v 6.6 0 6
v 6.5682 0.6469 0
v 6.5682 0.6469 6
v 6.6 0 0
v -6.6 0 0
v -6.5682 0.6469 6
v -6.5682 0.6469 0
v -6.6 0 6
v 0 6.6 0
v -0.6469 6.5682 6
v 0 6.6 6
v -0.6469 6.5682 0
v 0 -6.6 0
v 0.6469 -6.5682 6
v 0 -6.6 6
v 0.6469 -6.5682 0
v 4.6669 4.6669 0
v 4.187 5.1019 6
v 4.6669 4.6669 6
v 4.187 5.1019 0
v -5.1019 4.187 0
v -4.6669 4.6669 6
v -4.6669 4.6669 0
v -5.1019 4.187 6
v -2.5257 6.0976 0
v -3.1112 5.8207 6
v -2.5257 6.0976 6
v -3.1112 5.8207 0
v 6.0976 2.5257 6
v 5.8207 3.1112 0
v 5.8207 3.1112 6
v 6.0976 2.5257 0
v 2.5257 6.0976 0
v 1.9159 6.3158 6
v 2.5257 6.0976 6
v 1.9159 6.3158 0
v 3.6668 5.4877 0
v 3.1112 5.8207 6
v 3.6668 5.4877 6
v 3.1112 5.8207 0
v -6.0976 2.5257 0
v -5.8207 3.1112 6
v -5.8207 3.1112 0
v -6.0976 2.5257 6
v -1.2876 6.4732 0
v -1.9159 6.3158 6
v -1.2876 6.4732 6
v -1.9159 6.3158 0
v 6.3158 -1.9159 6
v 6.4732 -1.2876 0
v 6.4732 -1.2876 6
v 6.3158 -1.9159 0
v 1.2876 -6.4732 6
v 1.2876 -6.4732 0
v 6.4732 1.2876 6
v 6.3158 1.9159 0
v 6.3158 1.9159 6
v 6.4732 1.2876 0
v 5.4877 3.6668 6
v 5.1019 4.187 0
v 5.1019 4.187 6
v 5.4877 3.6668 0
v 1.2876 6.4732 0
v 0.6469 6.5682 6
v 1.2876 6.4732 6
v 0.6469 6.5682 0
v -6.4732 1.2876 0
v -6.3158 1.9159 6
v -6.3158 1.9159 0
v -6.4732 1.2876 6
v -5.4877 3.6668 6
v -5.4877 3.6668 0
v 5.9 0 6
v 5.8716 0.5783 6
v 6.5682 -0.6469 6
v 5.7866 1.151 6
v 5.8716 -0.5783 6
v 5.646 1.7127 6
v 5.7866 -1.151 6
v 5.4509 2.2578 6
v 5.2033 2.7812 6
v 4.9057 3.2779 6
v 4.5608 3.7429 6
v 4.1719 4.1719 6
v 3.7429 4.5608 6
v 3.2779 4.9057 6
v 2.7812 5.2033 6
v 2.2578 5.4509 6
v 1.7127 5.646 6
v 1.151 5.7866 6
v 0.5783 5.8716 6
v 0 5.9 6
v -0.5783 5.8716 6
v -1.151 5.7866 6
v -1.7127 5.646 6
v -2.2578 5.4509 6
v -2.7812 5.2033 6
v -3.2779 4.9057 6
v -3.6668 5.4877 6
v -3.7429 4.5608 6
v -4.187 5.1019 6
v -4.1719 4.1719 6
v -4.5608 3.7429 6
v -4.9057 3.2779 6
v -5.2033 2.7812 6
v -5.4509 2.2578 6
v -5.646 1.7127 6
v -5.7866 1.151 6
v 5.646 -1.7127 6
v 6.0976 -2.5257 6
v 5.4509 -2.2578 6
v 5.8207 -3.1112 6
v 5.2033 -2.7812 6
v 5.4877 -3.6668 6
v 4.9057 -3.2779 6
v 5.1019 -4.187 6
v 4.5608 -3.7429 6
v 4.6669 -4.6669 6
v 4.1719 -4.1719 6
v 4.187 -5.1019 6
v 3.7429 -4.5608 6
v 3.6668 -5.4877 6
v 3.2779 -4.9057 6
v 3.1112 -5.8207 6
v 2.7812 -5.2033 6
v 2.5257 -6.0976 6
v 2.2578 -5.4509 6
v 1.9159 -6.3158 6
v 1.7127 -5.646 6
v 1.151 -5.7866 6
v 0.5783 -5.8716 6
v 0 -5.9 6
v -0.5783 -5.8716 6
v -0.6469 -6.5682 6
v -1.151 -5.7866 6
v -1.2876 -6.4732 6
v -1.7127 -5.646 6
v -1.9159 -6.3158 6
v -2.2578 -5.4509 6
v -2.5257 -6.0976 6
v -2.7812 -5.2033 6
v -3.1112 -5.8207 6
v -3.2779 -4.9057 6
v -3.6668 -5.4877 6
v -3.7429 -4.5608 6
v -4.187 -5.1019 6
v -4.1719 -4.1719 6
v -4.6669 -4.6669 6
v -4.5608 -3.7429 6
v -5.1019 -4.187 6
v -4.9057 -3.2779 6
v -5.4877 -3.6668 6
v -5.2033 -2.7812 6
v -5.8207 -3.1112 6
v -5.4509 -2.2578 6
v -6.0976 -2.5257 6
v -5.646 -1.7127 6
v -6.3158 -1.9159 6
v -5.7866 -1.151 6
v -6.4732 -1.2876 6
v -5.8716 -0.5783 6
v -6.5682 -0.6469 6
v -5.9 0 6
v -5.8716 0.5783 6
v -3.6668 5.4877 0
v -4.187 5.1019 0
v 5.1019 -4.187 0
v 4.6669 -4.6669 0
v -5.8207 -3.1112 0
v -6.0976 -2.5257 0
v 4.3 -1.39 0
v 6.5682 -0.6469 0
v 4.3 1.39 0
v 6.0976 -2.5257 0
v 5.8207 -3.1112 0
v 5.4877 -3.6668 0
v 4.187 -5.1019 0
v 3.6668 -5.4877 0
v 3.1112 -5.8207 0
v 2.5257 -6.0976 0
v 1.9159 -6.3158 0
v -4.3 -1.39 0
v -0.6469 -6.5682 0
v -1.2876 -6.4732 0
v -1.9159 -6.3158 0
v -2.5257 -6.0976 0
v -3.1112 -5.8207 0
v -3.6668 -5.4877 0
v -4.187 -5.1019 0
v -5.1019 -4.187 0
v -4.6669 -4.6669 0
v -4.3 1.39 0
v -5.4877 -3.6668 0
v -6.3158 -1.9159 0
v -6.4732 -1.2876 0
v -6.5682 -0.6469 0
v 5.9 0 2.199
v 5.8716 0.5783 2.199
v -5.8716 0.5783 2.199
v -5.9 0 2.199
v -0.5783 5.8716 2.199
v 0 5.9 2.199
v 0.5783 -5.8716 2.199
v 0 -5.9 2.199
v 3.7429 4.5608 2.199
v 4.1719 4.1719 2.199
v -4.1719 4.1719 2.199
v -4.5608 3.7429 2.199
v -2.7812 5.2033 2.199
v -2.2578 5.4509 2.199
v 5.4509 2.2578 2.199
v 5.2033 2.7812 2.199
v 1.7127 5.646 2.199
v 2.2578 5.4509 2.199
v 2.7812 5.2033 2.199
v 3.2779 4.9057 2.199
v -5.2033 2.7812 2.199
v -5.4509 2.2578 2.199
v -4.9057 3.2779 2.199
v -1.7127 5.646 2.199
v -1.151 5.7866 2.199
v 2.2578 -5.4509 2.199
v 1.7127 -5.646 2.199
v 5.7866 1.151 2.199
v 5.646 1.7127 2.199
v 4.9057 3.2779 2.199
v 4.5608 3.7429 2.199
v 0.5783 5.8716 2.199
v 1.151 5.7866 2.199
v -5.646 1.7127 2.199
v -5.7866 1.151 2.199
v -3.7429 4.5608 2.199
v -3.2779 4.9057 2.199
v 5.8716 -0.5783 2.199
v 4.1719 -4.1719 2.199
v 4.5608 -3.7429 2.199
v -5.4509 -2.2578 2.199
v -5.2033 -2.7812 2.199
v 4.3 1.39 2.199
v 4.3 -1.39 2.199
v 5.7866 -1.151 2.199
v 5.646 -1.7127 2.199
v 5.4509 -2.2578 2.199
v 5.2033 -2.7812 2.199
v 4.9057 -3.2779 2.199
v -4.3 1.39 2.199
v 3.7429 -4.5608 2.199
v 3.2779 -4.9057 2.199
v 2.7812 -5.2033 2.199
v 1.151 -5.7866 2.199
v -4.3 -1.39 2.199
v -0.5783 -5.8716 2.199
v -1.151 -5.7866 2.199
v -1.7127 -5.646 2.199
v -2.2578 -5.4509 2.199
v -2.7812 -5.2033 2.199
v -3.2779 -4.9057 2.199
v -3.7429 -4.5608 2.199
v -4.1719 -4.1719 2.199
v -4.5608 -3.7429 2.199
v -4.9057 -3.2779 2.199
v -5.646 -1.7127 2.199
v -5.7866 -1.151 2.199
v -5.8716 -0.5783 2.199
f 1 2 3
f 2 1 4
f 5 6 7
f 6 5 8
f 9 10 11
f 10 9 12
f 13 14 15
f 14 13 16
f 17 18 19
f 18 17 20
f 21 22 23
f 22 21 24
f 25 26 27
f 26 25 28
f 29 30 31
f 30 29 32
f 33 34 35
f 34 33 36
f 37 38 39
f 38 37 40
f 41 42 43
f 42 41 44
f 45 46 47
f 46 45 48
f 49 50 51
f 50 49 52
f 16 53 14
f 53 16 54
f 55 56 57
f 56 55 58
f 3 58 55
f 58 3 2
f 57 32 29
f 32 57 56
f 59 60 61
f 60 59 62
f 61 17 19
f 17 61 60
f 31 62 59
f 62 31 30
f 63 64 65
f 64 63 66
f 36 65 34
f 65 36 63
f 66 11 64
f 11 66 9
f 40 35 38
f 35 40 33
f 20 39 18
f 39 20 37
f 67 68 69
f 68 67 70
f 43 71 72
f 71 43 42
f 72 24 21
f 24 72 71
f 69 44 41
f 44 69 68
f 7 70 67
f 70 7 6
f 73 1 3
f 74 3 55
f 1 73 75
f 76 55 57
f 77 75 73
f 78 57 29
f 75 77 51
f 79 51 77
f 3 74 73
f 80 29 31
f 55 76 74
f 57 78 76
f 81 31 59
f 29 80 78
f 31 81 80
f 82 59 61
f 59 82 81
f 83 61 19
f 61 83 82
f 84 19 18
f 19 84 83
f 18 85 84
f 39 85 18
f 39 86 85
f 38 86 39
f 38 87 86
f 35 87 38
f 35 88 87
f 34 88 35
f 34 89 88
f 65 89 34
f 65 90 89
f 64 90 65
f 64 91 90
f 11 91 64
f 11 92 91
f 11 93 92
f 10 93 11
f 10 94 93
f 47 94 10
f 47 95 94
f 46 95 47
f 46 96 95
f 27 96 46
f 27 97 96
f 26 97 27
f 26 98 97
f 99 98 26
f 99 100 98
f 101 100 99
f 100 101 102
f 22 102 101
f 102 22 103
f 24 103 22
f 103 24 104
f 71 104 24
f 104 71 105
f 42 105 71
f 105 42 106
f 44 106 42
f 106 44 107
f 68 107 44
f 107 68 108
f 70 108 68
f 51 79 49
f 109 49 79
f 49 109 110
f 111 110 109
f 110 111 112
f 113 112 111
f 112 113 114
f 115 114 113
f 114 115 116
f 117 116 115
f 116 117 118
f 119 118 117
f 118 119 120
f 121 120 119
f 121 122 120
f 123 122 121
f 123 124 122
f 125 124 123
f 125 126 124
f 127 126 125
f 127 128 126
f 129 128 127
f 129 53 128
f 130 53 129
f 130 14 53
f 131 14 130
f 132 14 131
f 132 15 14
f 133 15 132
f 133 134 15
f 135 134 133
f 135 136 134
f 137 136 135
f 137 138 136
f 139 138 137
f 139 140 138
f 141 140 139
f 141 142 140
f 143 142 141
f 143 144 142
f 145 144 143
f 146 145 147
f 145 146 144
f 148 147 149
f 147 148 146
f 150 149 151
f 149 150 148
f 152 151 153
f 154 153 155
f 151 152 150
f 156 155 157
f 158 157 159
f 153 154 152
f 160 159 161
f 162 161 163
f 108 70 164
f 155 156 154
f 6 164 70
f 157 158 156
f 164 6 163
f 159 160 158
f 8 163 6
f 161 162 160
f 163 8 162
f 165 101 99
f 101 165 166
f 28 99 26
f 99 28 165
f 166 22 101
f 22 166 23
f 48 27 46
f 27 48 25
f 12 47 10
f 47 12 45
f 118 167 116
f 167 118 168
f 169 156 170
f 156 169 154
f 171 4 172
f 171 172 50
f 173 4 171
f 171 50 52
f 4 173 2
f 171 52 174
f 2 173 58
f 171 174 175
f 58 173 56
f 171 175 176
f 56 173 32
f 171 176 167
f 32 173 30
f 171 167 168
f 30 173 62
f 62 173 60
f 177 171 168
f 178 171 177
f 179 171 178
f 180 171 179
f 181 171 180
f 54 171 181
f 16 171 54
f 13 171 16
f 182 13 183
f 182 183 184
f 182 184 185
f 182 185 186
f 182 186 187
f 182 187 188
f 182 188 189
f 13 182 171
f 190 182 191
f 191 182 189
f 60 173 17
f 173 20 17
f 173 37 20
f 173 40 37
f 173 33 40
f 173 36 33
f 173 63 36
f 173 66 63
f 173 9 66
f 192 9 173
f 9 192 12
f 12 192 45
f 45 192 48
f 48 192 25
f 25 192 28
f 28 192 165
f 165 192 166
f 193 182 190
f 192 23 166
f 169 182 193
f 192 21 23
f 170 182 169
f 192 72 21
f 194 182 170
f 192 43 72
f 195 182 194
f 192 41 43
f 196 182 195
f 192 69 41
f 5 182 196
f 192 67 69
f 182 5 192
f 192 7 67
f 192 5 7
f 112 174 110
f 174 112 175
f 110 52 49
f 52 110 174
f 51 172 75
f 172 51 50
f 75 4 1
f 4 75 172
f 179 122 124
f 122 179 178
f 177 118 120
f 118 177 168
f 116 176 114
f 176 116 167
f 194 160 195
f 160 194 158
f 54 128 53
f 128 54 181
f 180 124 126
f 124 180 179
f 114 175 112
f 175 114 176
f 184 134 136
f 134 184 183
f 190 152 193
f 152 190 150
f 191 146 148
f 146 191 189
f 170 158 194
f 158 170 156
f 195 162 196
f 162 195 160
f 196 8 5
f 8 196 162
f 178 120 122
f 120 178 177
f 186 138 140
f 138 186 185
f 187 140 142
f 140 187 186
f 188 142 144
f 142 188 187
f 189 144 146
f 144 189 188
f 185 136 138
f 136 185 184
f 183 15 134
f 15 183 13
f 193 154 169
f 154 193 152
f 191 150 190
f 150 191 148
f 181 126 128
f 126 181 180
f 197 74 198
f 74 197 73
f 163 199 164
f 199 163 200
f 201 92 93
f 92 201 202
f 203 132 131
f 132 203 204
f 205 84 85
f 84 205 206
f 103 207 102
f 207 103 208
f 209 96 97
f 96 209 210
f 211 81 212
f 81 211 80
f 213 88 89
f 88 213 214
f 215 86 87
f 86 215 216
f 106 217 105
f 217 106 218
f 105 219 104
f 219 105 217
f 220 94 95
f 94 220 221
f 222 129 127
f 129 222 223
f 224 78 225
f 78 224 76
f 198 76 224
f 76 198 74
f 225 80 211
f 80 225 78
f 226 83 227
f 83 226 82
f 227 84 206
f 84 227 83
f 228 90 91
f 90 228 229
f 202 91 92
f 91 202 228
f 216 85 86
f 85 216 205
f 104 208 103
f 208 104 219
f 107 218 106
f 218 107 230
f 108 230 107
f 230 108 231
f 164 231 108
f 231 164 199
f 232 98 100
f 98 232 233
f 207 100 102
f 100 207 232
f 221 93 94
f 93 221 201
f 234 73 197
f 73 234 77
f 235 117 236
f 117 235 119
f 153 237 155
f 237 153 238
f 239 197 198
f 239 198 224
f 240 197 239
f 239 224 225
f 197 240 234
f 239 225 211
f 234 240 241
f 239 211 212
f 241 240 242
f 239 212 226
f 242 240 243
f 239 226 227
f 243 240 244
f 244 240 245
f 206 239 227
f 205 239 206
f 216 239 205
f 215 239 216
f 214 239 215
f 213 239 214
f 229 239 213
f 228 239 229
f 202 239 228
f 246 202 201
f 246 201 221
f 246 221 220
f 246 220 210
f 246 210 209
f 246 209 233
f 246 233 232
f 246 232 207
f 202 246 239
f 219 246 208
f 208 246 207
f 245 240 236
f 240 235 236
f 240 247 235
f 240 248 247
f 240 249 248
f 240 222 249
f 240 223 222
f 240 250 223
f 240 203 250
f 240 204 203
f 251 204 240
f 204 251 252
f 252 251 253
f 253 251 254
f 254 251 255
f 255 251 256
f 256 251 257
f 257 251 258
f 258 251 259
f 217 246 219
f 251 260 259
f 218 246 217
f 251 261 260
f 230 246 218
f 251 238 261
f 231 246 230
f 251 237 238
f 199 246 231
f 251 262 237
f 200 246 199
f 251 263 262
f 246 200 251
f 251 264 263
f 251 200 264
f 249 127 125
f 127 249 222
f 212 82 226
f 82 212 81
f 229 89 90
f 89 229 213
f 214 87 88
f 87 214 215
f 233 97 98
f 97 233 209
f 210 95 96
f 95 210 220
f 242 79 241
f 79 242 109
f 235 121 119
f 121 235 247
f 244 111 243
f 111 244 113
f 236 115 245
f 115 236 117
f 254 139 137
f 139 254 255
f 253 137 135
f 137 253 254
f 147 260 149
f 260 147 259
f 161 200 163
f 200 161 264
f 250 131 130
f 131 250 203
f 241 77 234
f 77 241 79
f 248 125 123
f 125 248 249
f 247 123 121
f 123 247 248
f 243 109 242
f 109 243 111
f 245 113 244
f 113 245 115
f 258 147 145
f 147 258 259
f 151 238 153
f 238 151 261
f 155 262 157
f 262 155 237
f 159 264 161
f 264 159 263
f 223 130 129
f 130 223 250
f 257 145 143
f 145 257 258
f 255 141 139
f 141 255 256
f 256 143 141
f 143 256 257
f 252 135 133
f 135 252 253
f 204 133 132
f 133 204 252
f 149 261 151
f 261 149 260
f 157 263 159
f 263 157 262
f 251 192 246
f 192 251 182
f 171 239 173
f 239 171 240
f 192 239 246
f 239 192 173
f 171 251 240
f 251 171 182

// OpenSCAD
batteryDiameter = 11.6;
diodeDiameter = 2.58;
diodeSlotLength = 8.6;
batterySlotDiameter = 13.4;
tolerance = 0.1;
baseThickness = 2.2;
lip = 3.8;


$fn = 64;
difference() {
    cylinder(d=batterySlotDiameter - 2*tolerance,h=lip+baseThickness);
    translate([0,0,baseThickness-0.001]) cylinder(d=batteryDiameter + 2*tolerance,h=lip+1);
    cube([diodeSlotLength,diodeDiameter+2*tolerance,diodeDiameter*4], center=true);
}
